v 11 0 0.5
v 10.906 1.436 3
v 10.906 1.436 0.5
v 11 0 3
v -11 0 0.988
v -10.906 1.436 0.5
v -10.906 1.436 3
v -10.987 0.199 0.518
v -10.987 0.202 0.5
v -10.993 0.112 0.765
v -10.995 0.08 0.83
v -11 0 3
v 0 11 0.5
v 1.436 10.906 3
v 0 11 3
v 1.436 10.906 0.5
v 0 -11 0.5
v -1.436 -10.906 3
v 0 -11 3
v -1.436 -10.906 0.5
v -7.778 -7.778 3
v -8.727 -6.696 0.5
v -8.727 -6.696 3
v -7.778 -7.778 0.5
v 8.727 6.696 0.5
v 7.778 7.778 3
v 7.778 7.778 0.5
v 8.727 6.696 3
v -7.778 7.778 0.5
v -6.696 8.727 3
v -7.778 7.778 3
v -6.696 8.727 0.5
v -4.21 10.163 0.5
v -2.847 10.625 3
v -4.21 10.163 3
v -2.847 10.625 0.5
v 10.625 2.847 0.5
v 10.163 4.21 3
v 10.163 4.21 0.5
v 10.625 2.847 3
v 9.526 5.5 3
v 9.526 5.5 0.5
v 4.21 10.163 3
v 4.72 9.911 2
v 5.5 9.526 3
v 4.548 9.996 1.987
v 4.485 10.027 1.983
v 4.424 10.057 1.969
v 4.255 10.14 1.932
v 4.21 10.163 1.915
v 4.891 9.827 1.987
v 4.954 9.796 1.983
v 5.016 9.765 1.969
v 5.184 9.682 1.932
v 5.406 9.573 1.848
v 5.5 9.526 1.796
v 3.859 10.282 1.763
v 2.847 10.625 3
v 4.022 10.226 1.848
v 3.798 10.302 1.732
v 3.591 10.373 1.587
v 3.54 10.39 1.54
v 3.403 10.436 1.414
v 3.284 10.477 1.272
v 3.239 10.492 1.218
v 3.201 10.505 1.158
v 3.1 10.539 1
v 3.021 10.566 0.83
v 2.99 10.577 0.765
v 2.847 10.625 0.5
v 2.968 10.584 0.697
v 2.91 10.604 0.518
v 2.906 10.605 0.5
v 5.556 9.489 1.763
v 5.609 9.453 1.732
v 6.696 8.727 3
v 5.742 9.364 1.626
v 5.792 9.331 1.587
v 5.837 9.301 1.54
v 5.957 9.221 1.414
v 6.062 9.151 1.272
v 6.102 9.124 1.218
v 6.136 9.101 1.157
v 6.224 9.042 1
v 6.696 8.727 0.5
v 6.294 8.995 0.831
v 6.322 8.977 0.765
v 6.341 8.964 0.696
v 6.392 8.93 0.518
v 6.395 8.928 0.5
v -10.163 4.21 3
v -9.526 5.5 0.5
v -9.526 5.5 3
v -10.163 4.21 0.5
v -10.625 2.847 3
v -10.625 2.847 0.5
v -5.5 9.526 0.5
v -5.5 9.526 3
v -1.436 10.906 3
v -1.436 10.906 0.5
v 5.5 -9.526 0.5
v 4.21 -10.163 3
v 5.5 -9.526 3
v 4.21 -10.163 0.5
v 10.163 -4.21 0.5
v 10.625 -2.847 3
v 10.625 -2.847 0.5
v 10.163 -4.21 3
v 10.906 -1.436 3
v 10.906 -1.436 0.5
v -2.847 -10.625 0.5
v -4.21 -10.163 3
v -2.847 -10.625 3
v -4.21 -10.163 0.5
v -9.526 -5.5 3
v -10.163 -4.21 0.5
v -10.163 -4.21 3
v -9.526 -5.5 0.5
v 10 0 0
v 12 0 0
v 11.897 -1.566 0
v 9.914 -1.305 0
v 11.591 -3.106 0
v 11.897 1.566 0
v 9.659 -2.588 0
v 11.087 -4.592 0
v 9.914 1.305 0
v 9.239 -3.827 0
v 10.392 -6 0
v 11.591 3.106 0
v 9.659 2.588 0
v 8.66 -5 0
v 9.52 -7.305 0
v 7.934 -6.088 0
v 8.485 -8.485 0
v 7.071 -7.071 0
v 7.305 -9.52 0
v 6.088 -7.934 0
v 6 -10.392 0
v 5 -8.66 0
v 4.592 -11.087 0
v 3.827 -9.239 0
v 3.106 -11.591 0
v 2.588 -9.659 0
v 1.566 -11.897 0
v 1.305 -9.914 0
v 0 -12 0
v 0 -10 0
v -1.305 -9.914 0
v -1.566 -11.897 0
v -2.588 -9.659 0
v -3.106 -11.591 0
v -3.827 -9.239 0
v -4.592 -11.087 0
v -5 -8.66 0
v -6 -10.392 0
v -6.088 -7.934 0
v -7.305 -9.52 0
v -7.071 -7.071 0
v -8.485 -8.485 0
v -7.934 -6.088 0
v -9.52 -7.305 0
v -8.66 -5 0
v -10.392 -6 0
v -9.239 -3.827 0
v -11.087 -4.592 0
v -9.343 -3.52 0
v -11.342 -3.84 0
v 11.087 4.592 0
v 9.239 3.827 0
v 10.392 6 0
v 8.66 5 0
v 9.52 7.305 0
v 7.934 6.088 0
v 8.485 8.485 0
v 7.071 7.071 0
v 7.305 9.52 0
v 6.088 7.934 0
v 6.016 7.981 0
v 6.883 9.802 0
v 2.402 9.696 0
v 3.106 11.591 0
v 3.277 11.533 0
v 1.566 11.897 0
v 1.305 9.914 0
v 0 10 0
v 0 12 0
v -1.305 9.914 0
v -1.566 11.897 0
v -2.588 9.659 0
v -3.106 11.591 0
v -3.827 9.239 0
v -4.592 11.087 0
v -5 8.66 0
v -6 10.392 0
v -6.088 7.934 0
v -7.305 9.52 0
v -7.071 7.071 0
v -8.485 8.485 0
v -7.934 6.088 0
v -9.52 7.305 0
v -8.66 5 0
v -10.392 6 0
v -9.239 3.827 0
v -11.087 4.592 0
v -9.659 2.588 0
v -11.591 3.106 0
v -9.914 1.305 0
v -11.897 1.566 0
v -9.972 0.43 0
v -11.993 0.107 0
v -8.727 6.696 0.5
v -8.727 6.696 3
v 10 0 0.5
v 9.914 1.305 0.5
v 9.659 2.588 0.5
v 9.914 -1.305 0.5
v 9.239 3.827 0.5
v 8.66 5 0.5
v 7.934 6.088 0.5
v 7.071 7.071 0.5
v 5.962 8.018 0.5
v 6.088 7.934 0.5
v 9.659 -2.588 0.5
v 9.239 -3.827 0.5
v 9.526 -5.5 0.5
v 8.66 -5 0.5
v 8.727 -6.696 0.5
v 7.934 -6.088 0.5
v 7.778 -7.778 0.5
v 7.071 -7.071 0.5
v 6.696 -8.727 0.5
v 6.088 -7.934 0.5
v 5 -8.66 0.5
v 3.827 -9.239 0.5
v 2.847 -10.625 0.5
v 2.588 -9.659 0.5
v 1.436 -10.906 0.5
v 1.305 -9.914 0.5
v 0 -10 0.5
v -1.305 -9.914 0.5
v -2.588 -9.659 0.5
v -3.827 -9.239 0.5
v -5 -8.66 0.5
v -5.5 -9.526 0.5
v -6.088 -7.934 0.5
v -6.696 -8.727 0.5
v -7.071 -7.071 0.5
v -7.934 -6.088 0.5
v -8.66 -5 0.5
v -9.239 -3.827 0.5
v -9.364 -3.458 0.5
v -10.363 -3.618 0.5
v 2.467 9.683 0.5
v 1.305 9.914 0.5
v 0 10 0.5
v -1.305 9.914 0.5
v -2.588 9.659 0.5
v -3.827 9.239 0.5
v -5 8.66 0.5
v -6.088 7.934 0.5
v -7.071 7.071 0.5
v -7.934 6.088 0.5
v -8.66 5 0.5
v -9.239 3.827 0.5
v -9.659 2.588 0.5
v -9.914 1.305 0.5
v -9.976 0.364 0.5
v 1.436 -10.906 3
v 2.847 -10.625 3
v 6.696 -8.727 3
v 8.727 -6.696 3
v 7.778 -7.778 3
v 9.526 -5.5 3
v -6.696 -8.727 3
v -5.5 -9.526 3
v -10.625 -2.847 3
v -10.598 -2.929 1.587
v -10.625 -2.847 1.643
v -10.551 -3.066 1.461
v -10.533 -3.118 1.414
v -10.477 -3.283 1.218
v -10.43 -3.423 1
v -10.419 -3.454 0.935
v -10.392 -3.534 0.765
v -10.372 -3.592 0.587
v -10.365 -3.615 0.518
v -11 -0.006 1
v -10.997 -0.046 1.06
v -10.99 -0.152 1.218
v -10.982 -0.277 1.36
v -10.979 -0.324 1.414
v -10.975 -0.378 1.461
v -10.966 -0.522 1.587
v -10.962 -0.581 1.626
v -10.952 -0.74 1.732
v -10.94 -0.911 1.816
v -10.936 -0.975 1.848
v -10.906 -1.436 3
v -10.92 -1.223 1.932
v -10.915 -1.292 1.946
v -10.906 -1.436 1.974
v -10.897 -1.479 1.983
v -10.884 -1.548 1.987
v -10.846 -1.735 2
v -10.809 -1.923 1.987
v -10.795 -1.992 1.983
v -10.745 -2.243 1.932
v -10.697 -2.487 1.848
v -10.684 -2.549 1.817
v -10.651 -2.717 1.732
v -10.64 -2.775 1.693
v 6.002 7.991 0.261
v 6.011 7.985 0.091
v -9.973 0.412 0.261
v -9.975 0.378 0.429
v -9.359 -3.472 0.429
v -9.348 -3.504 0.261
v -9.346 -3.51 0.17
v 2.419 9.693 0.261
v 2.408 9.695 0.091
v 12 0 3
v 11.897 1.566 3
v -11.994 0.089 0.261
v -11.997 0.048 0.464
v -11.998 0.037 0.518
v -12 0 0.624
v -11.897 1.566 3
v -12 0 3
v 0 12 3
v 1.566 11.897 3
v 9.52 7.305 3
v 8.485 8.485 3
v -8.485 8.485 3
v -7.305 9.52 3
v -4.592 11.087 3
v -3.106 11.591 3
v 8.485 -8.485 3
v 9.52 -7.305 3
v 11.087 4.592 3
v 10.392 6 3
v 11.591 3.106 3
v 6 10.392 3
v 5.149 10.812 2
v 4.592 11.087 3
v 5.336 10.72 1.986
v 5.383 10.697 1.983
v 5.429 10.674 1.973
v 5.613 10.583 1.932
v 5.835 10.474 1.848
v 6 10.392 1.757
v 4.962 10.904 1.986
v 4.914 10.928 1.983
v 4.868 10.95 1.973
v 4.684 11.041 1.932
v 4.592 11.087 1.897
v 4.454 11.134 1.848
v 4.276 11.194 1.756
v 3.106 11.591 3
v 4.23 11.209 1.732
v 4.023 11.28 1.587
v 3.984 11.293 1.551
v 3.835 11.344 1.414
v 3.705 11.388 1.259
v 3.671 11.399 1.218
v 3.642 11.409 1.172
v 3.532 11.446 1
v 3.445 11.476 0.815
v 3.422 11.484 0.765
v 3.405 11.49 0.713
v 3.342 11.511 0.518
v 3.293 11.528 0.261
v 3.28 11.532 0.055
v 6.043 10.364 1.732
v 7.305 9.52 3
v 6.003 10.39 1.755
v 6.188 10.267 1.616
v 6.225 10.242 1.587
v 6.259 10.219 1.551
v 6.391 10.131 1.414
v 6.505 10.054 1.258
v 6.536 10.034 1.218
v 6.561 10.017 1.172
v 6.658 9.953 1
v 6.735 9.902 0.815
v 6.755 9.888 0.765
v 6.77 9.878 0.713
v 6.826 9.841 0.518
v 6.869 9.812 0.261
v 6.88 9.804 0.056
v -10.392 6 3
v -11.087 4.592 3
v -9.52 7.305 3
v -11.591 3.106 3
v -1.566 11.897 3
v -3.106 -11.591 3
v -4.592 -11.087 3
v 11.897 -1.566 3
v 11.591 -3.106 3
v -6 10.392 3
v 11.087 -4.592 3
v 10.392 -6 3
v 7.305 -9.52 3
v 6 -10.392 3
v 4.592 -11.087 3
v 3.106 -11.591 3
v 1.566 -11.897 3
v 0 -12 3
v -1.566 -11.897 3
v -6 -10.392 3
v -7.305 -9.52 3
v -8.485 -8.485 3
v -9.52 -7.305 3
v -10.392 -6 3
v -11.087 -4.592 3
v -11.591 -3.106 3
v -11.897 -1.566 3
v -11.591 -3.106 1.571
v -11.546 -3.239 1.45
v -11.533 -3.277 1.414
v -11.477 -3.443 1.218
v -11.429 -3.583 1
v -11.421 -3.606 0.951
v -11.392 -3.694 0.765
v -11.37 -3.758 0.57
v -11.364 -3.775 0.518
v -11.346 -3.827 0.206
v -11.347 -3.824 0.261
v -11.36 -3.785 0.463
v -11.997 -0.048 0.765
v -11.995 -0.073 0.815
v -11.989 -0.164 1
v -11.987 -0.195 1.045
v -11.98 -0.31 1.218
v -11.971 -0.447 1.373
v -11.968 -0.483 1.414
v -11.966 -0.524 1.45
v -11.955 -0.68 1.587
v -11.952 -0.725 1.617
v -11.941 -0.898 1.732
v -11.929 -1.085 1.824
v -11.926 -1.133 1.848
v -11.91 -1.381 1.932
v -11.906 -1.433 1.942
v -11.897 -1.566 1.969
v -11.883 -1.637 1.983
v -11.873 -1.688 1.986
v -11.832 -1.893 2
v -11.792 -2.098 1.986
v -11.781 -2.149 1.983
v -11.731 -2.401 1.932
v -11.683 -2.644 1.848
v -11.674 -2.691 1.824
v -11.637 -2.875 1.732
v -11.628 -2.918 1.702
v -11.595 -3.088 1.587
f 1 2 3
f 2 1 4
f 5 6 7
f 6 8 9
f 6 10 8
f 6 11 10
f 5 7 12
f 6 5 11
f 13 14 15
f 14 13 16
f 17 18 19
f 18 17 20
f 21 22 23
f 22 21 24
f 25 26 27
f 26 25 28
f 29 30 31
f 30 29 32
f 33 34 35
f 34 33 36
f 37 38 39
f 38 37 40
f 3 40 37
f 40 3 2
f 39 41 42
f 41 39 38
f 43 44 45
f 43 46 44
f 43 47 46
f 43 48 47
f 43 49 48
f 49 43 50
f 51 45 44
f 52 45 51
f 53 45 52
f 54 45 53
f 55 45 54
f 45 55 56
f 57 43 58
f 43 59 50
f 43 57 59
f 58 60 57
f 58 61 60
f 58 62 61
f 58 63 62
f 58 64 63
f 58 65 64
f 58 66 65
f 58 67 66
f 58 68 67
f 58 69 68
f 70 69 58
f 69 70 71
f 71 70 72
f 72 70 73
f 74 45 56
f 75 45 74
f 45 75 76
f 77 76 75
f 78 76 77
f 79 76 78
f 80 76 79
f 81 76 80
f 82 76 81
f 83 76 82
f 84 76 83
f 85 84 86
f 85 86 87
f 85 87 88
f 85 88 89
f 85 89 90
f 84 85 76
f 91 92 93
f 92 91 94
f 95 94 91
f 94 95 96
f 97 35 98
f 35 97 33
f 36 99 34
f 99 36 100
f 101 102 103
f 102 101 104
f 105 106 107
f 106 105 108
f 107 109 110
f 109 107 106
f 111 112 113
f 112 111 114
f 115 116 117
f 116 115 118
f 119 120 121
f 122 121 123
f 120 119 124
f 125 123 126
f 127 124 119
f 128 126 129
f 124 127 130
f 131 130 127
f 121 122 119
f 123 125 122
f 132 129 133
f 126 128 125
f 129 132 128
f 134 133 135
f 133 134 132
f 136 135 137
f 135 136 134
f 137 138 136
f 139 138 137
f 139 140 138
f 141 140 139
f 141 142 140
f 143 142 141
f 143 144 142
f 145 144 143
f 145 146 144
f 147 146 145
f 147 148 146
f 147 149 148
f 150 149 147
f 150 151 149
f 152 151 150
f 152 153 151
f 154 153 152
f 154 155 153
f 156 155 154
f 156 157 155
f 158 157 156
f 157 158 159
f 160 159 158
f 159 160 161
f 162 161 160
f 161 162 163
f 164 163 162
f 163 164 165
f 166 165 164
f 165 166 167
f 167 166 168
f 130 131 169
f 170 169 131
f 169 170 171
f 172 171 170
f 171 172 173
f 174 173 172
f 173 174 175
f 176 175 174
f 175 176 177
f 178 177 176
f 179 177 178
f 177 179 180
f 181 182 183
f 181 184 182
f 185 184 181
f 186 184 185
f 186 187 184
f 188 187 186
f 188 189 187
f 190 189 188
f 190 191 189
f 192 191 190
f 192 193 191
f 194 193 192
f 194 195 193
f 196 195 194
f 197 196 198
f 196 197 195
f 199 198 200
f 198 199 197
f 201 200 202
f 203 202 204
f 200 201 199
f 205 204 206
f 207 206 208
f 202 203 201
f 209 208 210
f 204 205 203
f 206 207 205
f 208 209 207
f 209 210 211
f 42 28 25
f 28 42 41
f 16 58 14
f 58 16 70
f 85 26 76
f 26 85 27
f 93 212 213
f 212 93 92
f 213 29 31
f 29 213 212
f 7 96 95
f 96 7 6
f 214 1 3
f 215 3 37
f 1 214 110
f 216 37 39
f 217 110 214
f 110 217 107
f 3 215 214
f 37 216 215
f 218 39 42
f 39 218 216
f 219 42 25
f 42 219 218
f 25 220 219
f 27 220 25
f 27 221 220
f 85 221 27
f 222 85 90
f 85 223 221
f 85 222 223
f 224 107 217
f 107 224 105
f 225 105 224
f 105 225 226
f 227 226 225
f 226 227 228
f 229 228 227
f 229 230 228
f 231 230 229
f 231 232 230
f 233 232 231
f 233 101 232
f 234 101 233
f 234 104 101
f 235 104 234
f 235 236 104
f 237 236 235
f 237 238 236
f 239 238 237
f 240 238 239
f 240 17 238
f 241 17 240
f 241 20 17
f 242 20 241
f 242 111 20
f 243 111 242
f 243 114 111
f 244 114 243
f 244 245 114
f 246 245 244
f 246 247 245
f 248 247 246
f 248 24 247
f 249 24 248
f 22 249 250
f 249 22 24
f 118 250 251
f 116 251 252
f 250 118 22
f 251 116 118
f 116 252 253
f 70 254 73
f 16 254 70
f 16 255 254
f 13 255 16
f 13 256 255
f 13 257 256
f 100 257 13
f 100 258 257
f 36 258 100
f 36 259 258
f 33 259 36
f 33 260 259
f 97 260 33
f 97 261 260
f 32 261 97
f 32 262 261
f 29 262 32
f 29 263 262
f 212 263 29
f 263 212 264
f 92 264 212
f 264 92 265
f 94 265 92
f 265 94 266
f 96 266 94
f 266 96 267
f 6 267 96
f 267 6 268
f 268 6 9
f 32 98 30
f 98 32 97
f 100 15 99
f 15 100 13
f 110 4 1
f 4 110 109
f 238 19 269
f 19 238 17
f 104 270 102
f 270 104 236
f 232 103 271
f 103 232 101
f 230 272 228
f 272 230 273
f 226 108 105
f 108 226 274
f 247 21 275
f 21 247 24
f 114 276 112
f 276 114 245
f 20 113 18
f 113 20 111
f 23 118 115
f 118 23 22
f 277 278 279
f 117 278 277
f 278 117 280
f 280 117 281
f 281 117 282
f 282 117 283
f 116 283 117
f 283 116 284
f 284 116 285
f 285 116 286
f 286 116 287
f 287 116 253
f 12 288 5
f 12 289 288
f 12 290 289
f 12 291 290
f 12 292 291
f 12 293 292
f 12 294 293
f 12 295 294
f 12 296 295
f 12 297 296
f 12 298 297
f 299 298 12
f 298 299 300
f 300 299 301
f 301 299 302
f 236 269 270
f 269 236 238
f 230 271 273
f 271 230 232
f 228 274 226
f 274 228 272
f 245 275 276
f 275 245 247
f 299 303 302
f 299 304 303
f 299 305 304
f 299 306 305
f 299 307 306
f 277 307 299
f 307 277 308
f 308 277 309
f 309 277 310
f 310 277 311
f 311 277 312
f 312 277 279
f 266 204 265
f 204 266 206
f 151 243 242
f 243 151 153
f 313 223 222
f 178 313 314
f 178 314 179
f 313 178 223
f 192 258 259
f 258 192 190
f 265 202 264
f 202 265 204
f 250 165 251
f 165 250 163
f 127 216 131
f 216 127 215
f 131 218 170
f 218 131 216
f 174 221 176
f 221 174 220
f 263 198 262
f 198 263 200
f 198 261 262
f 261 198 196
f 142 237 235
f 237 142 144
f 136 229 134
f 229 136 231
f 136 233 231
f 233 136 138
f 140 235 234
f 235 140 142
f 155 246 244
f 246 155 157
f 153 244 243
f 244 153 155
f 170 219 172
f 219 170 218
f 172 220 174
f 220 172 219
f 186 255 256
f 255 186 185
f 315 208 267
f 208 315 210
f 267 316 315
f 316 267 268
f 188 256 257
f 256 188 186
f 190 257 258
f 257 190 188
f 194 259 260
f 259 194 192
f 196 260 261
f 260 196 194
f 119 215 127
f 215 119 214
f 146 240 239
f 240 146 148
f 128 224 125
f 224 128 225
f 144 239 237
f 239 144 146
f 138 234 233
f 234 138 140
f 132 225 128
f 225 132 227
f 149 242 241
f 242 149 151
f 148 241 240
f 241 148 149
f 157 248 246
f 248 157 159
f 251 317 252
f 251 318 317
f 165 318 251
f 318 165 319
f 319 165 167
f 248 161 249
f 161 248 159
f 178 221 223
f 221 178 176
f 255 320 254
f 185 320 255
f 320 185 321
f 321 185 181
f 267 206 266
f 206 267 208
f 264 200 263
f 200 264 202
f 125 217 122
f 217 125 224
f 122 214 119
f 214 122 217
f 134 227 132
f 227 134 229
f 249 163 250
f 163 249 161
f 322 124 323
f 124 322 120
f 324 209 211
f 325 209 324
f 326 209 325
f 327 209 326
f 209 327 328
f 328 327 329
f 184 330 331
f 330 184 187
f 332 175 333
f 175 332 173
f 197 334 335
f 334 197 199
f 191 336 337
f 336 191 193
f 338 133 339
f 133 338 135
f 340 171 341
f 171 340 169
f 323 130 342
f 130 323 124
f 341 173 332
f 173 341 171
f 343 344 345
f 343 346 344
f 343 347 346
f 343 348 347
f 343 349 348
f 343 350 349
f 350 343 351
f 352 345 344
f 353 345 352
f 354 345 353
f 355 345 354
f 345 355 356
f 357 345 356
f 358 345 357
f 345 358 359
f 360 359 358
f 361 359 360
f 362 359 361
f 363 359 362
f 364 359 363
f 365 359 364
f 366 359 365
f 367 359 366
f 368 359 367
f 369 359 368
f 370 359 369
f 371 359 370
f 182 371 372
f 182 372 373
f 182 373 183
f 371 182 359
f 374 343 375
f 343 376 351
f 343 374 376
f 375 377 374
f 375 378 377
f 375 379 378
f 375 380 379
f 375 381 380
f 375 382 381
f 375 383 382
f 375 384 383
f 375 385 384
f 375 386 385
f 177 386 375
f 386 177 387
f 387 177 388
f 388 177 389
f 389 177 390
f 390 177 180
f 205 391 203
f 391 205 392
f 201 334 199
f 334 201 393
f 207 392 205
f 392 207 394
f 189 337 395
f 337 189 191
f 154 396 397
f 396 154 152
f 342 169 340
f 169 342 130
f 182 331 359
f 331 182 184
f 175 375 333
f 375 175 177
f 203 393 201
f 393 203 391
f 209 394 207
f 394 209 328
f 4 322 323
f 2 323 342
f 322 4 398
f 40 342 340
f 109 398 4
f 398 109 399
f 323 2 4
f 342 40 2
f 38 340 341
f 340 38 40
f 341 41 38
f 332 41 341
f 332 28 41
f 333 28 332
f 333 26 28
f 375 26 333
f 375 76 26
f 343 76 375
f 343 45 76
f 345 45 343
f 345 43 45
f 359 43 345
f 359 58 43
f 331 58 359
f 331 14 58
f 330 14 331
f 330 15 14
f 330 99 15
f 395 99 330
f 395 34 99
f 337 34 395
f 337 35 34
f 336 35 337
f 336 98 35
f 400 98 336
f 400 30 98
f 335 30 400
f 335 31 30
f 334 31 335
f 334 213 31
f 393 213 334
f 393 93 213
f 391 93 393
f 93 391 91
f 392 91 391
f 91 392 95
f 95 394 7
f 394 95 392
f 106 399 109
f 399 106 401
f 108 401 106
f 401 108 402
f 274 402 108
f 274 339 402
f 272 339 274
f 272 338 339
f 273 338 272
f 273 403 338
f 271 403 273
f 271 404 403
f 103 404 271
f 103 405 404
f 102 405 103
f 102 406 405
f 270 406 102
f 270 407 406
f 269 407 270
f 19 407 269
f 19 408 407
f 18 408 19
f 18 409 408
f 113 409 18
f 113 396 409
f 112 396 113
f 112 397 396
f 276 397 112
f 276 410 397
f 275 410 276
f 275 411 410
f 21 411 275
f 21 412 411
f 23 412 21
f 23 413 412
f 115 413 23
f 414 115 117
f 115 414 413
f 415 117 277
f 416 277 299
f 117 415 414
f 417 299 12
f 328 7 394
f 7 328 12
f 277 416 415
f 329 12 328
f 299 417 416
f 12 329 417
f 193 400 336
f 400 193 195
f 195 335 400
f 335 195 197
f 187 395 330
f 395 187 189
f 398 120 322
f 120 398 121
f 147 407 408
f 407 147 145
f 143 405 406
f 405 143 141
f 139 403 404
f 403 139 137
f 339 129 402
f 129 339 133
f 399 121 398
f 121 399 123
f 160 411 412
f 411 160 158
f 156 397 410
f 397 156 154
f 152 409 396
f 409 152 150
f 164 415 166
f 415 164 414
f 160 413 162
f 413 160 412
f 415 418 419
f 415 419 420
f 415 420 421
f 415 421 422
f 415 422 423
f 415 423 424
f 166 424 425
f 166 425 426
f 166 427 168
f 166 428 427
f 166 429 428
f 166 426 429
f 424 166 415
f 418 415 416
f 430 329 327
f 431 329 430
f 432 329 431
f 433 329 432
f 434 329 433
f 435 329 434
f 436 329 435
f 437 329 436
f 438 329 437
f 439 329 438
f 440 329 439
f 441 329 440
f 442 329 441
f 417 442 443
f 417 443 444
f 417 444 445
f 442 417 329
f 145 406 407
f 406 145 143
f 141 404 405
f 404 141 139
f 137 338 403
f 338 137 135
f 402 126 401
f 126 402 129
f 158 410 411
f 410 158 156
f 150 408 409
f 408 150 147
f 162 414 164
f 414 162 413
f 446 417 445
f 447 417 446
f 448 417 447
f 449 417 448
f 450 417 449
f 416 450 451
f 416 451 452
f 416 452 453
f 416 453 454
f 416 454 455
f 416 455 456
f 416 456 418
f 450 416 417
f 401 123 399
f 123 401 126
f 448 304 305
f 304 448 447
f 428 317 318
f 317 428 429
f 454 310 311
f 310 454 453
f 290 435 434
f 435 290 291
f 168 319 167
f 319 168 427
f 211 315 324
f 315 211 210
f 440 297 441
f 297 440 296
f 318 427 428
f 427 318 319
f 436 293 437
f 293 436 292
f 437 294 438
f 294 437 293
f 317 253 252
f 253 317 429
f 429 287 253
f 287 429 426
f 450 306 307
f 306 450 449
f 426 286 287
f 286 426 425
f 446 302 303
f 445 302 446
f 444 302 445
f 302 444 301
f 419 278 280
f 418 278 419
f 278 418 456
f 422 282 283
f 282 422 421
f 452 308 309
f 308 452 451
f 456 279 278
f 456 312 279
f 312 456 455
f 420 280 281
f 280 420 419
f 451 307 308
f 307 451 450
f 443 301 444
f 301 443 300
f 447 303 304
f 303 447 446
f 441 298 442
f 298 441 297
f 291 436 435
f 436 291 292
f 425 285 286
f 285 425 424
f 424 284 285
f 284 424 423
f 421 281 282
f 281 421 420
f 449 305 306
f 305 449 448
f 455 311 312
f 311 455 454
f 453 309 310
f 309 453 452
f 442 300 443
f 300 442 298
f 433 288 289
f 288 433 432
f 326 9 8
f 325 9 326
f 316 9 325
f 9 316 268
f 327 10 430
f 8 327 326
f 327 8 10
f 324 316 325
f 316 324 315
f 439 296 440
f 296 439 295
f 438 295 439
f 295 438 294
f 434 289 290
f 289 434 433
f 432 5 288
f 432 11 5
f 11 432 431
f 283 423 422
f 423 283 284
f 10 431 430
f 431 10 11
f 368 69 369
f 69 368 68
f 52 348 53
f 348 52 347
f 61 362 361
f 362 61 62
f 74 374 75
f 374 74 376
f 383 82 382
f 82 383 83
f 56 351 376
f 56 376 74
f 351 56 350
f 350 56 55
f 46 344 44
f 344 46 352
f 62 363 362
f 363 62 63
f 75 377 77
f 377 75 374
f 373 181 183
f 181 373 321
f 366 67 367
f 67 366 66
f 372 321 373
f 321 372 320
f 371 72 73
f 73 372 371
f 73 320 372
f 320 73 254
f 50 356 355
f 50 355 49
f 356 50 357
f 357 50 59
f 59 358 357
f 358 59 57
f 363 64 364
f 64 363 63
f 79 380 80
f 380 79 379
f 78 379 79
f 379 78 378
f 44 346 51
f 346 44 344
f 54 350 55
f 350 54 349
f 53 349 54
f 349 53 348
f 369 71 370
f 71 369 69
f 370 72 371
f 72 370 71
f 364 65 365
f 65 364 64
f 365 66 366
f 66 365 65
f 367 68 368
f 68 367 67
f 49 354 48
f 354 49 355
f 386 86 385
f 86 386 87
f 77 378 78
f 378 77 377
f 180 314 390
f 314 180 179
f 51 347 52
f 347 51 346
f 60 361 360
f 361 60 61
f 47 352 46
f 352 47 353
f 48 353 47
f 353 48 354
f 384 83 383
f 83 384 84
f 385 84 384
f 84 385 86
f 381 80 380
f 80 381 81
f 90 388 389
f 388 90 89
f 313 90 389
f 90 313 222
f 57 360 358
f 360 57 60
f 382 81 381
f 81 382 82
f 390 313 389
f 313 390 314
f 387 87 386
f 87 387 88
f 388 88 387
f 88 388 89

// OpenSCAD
// file: ../build_environments.scad
// build_environments.scad: modules to build level sections
//

module pool(diameter=10.0, wall_height=2.0, step_width=3.0, connections=[])
{
    difference() {
        union() {
        difference() {
            cylinder(h=0.5,r1=diameter+step_width,r2=diameter+step_width,$fn=48);
            translate([0,0,-0.1])
                cylinder(h=0.7,r1=diameter,r2=diameter,$fn=48);
        }
        difference() {
            cylinder(h=wall_height,r1=diameter+step_width+1.0,r2=diameter+step_width+1.0,$fn=48);
            translate([0,0,-0.1])
                cylinder(h=wall_height+0.2,r1=diameter+step_width,r2=diameter+step_width,$fn=48);
        }
        }
    
        for (c = connections)
        {
            rotate([0,90,0]) {
                angle = atan2(c[1],c[0]);
                rotate([-angle,0,0]) {
                    cylinder(h=diameter+5.0,r1=c[2],r2=c[2],$fn=48);
                }
            }
        }
    }
}

module straight(length=10.0, width=2.0, dy1=0.0, dy2=0.0, dz=0.0)
{
    dims = [0, 0, 0, 0, 0, (dz/length)];
    matrix = [
        [ 1, dims[0], dims[1], 0 ],
        [ dims[2], 1, dims[4], 0 ],
        [ dims[5], dims[3], 1, 0 ],
        [ 0, 0, 0, 1 ]
    ];
    multmatrix(matrix)
    difference() {
        translate([dy1,0,0])
        union() {
            rotate([0,90,0]) {
                difference() {
                    cylinder(h=(length-dy1-dy2),r1=width+1.0,r2=width+1.0,$fn=24);
                    translate([0,0,-0.1])
                        cylinder(h=(length-dy1-dy2+0.2),r1=width,r2=width,$fn=24);
                }
                difference() {
                    cylinder(h=1.0,r1=width+2.0,r2=width+2.0,$fn=24);
                    translate([0,0,-0.1])
                        cylinder(h=1.2,r1=width,r2=width,$fn=24);
                }
                translate([0,0,(length-dy1-dy2)-1.0]) {
                    difference() {
                        cylinder(h=1.0,r1=width+2.0,r2=width+2.0,$fn=24);
                        translate([0,0,-0.1])
                            cylinder(h=1.2,r1=width,r2=width,$fn=24);
                    }
                }
            }
        }
        translate([0,0,-(2*width+4.0)/2])
            cube([3*length,3*length,2*width+4.0],center=true);
    }
}

module curve(p0=[0,0], center=[0,0], dir=1, angle=0.0, width=2.0)
{
    radius = sqrt((p0[0]-center[0])*(p0[0]-center[0]) + (p0[1]-center[1])*(p0[1]-center[1]));
    if (dir == 0) {
        difference() {
            rotate([0,0,-90])
            difference() {
                rotate_extrude(angle = angle, convexity = 10, $fn=32)
                    translate([radius, 0, 0])
                        circle(r = width+1.0,$fn=24);
                rotate([0,0,-1.0])
                    rotate_extrude(angle = angle+2.0, convexity = 10, $fn=32)
                        translate([radius, 0, 0])
                            circle(r = width,$fn=24);
            }
            translate([0,0,-(2*width+4.0)/2])
                cube([5*radius,5*radius,2*width+4.0],center=true);
        }
    }
    else {
        difference() {
            rotate([0,0,90])
            difference() {
                rotate_extrude(angle = -angle, convexity = 10, $fn=32)
                    translate([radius, 0, 0])
                        circle(r = width+1.0,$fn=24);
                rotate([0,0,1.0])
                    rotate_extrude(angle = -angle-2.0, convexity = 10, $fn=32)
                        translate([radius, 0, 0])
                            circle(r = width,$fn=24);
            }
            translate([0,0,-(2*width+4.0)/2])
                cube([5*radius,5*radius,2*width+4.0],center=true);
        }
    }

}

// test pool
//pool(diameter=12.0000, wall_height=3.0000, step_width=3.0000, connections=[[0.0000,-26.0000,2.0000], [23.6074,0.0000,2.0000]]);

// test straight, slope
//straight(length=26.0000, width=2.0000, dy1=11.8322, dy2=6.7082, dz=0.0000);
//straight(length=29.1549, width=12.0000, dy1=0.0000, dy2=0.0000, dz=-15.0000);

// test curve
//curve(p0=[23.6074, 0.0000], center=[23.6074, 5.0000], dir=0, angle=60.1011, width=2.0000);
//curve(p0=[33.6426, 12.4219], center=[37.9771, 9.9295], dir=1, angle=120.4627, width=2.0000);
// main file
use <../build_environments.scad>;
pool(diameter=10.0000, wall_height=3.0000, step_width=1.0000, connections=[[-25.0000,-4.0000,2.0000], [10.0000,21.0000,2.0000]]);
